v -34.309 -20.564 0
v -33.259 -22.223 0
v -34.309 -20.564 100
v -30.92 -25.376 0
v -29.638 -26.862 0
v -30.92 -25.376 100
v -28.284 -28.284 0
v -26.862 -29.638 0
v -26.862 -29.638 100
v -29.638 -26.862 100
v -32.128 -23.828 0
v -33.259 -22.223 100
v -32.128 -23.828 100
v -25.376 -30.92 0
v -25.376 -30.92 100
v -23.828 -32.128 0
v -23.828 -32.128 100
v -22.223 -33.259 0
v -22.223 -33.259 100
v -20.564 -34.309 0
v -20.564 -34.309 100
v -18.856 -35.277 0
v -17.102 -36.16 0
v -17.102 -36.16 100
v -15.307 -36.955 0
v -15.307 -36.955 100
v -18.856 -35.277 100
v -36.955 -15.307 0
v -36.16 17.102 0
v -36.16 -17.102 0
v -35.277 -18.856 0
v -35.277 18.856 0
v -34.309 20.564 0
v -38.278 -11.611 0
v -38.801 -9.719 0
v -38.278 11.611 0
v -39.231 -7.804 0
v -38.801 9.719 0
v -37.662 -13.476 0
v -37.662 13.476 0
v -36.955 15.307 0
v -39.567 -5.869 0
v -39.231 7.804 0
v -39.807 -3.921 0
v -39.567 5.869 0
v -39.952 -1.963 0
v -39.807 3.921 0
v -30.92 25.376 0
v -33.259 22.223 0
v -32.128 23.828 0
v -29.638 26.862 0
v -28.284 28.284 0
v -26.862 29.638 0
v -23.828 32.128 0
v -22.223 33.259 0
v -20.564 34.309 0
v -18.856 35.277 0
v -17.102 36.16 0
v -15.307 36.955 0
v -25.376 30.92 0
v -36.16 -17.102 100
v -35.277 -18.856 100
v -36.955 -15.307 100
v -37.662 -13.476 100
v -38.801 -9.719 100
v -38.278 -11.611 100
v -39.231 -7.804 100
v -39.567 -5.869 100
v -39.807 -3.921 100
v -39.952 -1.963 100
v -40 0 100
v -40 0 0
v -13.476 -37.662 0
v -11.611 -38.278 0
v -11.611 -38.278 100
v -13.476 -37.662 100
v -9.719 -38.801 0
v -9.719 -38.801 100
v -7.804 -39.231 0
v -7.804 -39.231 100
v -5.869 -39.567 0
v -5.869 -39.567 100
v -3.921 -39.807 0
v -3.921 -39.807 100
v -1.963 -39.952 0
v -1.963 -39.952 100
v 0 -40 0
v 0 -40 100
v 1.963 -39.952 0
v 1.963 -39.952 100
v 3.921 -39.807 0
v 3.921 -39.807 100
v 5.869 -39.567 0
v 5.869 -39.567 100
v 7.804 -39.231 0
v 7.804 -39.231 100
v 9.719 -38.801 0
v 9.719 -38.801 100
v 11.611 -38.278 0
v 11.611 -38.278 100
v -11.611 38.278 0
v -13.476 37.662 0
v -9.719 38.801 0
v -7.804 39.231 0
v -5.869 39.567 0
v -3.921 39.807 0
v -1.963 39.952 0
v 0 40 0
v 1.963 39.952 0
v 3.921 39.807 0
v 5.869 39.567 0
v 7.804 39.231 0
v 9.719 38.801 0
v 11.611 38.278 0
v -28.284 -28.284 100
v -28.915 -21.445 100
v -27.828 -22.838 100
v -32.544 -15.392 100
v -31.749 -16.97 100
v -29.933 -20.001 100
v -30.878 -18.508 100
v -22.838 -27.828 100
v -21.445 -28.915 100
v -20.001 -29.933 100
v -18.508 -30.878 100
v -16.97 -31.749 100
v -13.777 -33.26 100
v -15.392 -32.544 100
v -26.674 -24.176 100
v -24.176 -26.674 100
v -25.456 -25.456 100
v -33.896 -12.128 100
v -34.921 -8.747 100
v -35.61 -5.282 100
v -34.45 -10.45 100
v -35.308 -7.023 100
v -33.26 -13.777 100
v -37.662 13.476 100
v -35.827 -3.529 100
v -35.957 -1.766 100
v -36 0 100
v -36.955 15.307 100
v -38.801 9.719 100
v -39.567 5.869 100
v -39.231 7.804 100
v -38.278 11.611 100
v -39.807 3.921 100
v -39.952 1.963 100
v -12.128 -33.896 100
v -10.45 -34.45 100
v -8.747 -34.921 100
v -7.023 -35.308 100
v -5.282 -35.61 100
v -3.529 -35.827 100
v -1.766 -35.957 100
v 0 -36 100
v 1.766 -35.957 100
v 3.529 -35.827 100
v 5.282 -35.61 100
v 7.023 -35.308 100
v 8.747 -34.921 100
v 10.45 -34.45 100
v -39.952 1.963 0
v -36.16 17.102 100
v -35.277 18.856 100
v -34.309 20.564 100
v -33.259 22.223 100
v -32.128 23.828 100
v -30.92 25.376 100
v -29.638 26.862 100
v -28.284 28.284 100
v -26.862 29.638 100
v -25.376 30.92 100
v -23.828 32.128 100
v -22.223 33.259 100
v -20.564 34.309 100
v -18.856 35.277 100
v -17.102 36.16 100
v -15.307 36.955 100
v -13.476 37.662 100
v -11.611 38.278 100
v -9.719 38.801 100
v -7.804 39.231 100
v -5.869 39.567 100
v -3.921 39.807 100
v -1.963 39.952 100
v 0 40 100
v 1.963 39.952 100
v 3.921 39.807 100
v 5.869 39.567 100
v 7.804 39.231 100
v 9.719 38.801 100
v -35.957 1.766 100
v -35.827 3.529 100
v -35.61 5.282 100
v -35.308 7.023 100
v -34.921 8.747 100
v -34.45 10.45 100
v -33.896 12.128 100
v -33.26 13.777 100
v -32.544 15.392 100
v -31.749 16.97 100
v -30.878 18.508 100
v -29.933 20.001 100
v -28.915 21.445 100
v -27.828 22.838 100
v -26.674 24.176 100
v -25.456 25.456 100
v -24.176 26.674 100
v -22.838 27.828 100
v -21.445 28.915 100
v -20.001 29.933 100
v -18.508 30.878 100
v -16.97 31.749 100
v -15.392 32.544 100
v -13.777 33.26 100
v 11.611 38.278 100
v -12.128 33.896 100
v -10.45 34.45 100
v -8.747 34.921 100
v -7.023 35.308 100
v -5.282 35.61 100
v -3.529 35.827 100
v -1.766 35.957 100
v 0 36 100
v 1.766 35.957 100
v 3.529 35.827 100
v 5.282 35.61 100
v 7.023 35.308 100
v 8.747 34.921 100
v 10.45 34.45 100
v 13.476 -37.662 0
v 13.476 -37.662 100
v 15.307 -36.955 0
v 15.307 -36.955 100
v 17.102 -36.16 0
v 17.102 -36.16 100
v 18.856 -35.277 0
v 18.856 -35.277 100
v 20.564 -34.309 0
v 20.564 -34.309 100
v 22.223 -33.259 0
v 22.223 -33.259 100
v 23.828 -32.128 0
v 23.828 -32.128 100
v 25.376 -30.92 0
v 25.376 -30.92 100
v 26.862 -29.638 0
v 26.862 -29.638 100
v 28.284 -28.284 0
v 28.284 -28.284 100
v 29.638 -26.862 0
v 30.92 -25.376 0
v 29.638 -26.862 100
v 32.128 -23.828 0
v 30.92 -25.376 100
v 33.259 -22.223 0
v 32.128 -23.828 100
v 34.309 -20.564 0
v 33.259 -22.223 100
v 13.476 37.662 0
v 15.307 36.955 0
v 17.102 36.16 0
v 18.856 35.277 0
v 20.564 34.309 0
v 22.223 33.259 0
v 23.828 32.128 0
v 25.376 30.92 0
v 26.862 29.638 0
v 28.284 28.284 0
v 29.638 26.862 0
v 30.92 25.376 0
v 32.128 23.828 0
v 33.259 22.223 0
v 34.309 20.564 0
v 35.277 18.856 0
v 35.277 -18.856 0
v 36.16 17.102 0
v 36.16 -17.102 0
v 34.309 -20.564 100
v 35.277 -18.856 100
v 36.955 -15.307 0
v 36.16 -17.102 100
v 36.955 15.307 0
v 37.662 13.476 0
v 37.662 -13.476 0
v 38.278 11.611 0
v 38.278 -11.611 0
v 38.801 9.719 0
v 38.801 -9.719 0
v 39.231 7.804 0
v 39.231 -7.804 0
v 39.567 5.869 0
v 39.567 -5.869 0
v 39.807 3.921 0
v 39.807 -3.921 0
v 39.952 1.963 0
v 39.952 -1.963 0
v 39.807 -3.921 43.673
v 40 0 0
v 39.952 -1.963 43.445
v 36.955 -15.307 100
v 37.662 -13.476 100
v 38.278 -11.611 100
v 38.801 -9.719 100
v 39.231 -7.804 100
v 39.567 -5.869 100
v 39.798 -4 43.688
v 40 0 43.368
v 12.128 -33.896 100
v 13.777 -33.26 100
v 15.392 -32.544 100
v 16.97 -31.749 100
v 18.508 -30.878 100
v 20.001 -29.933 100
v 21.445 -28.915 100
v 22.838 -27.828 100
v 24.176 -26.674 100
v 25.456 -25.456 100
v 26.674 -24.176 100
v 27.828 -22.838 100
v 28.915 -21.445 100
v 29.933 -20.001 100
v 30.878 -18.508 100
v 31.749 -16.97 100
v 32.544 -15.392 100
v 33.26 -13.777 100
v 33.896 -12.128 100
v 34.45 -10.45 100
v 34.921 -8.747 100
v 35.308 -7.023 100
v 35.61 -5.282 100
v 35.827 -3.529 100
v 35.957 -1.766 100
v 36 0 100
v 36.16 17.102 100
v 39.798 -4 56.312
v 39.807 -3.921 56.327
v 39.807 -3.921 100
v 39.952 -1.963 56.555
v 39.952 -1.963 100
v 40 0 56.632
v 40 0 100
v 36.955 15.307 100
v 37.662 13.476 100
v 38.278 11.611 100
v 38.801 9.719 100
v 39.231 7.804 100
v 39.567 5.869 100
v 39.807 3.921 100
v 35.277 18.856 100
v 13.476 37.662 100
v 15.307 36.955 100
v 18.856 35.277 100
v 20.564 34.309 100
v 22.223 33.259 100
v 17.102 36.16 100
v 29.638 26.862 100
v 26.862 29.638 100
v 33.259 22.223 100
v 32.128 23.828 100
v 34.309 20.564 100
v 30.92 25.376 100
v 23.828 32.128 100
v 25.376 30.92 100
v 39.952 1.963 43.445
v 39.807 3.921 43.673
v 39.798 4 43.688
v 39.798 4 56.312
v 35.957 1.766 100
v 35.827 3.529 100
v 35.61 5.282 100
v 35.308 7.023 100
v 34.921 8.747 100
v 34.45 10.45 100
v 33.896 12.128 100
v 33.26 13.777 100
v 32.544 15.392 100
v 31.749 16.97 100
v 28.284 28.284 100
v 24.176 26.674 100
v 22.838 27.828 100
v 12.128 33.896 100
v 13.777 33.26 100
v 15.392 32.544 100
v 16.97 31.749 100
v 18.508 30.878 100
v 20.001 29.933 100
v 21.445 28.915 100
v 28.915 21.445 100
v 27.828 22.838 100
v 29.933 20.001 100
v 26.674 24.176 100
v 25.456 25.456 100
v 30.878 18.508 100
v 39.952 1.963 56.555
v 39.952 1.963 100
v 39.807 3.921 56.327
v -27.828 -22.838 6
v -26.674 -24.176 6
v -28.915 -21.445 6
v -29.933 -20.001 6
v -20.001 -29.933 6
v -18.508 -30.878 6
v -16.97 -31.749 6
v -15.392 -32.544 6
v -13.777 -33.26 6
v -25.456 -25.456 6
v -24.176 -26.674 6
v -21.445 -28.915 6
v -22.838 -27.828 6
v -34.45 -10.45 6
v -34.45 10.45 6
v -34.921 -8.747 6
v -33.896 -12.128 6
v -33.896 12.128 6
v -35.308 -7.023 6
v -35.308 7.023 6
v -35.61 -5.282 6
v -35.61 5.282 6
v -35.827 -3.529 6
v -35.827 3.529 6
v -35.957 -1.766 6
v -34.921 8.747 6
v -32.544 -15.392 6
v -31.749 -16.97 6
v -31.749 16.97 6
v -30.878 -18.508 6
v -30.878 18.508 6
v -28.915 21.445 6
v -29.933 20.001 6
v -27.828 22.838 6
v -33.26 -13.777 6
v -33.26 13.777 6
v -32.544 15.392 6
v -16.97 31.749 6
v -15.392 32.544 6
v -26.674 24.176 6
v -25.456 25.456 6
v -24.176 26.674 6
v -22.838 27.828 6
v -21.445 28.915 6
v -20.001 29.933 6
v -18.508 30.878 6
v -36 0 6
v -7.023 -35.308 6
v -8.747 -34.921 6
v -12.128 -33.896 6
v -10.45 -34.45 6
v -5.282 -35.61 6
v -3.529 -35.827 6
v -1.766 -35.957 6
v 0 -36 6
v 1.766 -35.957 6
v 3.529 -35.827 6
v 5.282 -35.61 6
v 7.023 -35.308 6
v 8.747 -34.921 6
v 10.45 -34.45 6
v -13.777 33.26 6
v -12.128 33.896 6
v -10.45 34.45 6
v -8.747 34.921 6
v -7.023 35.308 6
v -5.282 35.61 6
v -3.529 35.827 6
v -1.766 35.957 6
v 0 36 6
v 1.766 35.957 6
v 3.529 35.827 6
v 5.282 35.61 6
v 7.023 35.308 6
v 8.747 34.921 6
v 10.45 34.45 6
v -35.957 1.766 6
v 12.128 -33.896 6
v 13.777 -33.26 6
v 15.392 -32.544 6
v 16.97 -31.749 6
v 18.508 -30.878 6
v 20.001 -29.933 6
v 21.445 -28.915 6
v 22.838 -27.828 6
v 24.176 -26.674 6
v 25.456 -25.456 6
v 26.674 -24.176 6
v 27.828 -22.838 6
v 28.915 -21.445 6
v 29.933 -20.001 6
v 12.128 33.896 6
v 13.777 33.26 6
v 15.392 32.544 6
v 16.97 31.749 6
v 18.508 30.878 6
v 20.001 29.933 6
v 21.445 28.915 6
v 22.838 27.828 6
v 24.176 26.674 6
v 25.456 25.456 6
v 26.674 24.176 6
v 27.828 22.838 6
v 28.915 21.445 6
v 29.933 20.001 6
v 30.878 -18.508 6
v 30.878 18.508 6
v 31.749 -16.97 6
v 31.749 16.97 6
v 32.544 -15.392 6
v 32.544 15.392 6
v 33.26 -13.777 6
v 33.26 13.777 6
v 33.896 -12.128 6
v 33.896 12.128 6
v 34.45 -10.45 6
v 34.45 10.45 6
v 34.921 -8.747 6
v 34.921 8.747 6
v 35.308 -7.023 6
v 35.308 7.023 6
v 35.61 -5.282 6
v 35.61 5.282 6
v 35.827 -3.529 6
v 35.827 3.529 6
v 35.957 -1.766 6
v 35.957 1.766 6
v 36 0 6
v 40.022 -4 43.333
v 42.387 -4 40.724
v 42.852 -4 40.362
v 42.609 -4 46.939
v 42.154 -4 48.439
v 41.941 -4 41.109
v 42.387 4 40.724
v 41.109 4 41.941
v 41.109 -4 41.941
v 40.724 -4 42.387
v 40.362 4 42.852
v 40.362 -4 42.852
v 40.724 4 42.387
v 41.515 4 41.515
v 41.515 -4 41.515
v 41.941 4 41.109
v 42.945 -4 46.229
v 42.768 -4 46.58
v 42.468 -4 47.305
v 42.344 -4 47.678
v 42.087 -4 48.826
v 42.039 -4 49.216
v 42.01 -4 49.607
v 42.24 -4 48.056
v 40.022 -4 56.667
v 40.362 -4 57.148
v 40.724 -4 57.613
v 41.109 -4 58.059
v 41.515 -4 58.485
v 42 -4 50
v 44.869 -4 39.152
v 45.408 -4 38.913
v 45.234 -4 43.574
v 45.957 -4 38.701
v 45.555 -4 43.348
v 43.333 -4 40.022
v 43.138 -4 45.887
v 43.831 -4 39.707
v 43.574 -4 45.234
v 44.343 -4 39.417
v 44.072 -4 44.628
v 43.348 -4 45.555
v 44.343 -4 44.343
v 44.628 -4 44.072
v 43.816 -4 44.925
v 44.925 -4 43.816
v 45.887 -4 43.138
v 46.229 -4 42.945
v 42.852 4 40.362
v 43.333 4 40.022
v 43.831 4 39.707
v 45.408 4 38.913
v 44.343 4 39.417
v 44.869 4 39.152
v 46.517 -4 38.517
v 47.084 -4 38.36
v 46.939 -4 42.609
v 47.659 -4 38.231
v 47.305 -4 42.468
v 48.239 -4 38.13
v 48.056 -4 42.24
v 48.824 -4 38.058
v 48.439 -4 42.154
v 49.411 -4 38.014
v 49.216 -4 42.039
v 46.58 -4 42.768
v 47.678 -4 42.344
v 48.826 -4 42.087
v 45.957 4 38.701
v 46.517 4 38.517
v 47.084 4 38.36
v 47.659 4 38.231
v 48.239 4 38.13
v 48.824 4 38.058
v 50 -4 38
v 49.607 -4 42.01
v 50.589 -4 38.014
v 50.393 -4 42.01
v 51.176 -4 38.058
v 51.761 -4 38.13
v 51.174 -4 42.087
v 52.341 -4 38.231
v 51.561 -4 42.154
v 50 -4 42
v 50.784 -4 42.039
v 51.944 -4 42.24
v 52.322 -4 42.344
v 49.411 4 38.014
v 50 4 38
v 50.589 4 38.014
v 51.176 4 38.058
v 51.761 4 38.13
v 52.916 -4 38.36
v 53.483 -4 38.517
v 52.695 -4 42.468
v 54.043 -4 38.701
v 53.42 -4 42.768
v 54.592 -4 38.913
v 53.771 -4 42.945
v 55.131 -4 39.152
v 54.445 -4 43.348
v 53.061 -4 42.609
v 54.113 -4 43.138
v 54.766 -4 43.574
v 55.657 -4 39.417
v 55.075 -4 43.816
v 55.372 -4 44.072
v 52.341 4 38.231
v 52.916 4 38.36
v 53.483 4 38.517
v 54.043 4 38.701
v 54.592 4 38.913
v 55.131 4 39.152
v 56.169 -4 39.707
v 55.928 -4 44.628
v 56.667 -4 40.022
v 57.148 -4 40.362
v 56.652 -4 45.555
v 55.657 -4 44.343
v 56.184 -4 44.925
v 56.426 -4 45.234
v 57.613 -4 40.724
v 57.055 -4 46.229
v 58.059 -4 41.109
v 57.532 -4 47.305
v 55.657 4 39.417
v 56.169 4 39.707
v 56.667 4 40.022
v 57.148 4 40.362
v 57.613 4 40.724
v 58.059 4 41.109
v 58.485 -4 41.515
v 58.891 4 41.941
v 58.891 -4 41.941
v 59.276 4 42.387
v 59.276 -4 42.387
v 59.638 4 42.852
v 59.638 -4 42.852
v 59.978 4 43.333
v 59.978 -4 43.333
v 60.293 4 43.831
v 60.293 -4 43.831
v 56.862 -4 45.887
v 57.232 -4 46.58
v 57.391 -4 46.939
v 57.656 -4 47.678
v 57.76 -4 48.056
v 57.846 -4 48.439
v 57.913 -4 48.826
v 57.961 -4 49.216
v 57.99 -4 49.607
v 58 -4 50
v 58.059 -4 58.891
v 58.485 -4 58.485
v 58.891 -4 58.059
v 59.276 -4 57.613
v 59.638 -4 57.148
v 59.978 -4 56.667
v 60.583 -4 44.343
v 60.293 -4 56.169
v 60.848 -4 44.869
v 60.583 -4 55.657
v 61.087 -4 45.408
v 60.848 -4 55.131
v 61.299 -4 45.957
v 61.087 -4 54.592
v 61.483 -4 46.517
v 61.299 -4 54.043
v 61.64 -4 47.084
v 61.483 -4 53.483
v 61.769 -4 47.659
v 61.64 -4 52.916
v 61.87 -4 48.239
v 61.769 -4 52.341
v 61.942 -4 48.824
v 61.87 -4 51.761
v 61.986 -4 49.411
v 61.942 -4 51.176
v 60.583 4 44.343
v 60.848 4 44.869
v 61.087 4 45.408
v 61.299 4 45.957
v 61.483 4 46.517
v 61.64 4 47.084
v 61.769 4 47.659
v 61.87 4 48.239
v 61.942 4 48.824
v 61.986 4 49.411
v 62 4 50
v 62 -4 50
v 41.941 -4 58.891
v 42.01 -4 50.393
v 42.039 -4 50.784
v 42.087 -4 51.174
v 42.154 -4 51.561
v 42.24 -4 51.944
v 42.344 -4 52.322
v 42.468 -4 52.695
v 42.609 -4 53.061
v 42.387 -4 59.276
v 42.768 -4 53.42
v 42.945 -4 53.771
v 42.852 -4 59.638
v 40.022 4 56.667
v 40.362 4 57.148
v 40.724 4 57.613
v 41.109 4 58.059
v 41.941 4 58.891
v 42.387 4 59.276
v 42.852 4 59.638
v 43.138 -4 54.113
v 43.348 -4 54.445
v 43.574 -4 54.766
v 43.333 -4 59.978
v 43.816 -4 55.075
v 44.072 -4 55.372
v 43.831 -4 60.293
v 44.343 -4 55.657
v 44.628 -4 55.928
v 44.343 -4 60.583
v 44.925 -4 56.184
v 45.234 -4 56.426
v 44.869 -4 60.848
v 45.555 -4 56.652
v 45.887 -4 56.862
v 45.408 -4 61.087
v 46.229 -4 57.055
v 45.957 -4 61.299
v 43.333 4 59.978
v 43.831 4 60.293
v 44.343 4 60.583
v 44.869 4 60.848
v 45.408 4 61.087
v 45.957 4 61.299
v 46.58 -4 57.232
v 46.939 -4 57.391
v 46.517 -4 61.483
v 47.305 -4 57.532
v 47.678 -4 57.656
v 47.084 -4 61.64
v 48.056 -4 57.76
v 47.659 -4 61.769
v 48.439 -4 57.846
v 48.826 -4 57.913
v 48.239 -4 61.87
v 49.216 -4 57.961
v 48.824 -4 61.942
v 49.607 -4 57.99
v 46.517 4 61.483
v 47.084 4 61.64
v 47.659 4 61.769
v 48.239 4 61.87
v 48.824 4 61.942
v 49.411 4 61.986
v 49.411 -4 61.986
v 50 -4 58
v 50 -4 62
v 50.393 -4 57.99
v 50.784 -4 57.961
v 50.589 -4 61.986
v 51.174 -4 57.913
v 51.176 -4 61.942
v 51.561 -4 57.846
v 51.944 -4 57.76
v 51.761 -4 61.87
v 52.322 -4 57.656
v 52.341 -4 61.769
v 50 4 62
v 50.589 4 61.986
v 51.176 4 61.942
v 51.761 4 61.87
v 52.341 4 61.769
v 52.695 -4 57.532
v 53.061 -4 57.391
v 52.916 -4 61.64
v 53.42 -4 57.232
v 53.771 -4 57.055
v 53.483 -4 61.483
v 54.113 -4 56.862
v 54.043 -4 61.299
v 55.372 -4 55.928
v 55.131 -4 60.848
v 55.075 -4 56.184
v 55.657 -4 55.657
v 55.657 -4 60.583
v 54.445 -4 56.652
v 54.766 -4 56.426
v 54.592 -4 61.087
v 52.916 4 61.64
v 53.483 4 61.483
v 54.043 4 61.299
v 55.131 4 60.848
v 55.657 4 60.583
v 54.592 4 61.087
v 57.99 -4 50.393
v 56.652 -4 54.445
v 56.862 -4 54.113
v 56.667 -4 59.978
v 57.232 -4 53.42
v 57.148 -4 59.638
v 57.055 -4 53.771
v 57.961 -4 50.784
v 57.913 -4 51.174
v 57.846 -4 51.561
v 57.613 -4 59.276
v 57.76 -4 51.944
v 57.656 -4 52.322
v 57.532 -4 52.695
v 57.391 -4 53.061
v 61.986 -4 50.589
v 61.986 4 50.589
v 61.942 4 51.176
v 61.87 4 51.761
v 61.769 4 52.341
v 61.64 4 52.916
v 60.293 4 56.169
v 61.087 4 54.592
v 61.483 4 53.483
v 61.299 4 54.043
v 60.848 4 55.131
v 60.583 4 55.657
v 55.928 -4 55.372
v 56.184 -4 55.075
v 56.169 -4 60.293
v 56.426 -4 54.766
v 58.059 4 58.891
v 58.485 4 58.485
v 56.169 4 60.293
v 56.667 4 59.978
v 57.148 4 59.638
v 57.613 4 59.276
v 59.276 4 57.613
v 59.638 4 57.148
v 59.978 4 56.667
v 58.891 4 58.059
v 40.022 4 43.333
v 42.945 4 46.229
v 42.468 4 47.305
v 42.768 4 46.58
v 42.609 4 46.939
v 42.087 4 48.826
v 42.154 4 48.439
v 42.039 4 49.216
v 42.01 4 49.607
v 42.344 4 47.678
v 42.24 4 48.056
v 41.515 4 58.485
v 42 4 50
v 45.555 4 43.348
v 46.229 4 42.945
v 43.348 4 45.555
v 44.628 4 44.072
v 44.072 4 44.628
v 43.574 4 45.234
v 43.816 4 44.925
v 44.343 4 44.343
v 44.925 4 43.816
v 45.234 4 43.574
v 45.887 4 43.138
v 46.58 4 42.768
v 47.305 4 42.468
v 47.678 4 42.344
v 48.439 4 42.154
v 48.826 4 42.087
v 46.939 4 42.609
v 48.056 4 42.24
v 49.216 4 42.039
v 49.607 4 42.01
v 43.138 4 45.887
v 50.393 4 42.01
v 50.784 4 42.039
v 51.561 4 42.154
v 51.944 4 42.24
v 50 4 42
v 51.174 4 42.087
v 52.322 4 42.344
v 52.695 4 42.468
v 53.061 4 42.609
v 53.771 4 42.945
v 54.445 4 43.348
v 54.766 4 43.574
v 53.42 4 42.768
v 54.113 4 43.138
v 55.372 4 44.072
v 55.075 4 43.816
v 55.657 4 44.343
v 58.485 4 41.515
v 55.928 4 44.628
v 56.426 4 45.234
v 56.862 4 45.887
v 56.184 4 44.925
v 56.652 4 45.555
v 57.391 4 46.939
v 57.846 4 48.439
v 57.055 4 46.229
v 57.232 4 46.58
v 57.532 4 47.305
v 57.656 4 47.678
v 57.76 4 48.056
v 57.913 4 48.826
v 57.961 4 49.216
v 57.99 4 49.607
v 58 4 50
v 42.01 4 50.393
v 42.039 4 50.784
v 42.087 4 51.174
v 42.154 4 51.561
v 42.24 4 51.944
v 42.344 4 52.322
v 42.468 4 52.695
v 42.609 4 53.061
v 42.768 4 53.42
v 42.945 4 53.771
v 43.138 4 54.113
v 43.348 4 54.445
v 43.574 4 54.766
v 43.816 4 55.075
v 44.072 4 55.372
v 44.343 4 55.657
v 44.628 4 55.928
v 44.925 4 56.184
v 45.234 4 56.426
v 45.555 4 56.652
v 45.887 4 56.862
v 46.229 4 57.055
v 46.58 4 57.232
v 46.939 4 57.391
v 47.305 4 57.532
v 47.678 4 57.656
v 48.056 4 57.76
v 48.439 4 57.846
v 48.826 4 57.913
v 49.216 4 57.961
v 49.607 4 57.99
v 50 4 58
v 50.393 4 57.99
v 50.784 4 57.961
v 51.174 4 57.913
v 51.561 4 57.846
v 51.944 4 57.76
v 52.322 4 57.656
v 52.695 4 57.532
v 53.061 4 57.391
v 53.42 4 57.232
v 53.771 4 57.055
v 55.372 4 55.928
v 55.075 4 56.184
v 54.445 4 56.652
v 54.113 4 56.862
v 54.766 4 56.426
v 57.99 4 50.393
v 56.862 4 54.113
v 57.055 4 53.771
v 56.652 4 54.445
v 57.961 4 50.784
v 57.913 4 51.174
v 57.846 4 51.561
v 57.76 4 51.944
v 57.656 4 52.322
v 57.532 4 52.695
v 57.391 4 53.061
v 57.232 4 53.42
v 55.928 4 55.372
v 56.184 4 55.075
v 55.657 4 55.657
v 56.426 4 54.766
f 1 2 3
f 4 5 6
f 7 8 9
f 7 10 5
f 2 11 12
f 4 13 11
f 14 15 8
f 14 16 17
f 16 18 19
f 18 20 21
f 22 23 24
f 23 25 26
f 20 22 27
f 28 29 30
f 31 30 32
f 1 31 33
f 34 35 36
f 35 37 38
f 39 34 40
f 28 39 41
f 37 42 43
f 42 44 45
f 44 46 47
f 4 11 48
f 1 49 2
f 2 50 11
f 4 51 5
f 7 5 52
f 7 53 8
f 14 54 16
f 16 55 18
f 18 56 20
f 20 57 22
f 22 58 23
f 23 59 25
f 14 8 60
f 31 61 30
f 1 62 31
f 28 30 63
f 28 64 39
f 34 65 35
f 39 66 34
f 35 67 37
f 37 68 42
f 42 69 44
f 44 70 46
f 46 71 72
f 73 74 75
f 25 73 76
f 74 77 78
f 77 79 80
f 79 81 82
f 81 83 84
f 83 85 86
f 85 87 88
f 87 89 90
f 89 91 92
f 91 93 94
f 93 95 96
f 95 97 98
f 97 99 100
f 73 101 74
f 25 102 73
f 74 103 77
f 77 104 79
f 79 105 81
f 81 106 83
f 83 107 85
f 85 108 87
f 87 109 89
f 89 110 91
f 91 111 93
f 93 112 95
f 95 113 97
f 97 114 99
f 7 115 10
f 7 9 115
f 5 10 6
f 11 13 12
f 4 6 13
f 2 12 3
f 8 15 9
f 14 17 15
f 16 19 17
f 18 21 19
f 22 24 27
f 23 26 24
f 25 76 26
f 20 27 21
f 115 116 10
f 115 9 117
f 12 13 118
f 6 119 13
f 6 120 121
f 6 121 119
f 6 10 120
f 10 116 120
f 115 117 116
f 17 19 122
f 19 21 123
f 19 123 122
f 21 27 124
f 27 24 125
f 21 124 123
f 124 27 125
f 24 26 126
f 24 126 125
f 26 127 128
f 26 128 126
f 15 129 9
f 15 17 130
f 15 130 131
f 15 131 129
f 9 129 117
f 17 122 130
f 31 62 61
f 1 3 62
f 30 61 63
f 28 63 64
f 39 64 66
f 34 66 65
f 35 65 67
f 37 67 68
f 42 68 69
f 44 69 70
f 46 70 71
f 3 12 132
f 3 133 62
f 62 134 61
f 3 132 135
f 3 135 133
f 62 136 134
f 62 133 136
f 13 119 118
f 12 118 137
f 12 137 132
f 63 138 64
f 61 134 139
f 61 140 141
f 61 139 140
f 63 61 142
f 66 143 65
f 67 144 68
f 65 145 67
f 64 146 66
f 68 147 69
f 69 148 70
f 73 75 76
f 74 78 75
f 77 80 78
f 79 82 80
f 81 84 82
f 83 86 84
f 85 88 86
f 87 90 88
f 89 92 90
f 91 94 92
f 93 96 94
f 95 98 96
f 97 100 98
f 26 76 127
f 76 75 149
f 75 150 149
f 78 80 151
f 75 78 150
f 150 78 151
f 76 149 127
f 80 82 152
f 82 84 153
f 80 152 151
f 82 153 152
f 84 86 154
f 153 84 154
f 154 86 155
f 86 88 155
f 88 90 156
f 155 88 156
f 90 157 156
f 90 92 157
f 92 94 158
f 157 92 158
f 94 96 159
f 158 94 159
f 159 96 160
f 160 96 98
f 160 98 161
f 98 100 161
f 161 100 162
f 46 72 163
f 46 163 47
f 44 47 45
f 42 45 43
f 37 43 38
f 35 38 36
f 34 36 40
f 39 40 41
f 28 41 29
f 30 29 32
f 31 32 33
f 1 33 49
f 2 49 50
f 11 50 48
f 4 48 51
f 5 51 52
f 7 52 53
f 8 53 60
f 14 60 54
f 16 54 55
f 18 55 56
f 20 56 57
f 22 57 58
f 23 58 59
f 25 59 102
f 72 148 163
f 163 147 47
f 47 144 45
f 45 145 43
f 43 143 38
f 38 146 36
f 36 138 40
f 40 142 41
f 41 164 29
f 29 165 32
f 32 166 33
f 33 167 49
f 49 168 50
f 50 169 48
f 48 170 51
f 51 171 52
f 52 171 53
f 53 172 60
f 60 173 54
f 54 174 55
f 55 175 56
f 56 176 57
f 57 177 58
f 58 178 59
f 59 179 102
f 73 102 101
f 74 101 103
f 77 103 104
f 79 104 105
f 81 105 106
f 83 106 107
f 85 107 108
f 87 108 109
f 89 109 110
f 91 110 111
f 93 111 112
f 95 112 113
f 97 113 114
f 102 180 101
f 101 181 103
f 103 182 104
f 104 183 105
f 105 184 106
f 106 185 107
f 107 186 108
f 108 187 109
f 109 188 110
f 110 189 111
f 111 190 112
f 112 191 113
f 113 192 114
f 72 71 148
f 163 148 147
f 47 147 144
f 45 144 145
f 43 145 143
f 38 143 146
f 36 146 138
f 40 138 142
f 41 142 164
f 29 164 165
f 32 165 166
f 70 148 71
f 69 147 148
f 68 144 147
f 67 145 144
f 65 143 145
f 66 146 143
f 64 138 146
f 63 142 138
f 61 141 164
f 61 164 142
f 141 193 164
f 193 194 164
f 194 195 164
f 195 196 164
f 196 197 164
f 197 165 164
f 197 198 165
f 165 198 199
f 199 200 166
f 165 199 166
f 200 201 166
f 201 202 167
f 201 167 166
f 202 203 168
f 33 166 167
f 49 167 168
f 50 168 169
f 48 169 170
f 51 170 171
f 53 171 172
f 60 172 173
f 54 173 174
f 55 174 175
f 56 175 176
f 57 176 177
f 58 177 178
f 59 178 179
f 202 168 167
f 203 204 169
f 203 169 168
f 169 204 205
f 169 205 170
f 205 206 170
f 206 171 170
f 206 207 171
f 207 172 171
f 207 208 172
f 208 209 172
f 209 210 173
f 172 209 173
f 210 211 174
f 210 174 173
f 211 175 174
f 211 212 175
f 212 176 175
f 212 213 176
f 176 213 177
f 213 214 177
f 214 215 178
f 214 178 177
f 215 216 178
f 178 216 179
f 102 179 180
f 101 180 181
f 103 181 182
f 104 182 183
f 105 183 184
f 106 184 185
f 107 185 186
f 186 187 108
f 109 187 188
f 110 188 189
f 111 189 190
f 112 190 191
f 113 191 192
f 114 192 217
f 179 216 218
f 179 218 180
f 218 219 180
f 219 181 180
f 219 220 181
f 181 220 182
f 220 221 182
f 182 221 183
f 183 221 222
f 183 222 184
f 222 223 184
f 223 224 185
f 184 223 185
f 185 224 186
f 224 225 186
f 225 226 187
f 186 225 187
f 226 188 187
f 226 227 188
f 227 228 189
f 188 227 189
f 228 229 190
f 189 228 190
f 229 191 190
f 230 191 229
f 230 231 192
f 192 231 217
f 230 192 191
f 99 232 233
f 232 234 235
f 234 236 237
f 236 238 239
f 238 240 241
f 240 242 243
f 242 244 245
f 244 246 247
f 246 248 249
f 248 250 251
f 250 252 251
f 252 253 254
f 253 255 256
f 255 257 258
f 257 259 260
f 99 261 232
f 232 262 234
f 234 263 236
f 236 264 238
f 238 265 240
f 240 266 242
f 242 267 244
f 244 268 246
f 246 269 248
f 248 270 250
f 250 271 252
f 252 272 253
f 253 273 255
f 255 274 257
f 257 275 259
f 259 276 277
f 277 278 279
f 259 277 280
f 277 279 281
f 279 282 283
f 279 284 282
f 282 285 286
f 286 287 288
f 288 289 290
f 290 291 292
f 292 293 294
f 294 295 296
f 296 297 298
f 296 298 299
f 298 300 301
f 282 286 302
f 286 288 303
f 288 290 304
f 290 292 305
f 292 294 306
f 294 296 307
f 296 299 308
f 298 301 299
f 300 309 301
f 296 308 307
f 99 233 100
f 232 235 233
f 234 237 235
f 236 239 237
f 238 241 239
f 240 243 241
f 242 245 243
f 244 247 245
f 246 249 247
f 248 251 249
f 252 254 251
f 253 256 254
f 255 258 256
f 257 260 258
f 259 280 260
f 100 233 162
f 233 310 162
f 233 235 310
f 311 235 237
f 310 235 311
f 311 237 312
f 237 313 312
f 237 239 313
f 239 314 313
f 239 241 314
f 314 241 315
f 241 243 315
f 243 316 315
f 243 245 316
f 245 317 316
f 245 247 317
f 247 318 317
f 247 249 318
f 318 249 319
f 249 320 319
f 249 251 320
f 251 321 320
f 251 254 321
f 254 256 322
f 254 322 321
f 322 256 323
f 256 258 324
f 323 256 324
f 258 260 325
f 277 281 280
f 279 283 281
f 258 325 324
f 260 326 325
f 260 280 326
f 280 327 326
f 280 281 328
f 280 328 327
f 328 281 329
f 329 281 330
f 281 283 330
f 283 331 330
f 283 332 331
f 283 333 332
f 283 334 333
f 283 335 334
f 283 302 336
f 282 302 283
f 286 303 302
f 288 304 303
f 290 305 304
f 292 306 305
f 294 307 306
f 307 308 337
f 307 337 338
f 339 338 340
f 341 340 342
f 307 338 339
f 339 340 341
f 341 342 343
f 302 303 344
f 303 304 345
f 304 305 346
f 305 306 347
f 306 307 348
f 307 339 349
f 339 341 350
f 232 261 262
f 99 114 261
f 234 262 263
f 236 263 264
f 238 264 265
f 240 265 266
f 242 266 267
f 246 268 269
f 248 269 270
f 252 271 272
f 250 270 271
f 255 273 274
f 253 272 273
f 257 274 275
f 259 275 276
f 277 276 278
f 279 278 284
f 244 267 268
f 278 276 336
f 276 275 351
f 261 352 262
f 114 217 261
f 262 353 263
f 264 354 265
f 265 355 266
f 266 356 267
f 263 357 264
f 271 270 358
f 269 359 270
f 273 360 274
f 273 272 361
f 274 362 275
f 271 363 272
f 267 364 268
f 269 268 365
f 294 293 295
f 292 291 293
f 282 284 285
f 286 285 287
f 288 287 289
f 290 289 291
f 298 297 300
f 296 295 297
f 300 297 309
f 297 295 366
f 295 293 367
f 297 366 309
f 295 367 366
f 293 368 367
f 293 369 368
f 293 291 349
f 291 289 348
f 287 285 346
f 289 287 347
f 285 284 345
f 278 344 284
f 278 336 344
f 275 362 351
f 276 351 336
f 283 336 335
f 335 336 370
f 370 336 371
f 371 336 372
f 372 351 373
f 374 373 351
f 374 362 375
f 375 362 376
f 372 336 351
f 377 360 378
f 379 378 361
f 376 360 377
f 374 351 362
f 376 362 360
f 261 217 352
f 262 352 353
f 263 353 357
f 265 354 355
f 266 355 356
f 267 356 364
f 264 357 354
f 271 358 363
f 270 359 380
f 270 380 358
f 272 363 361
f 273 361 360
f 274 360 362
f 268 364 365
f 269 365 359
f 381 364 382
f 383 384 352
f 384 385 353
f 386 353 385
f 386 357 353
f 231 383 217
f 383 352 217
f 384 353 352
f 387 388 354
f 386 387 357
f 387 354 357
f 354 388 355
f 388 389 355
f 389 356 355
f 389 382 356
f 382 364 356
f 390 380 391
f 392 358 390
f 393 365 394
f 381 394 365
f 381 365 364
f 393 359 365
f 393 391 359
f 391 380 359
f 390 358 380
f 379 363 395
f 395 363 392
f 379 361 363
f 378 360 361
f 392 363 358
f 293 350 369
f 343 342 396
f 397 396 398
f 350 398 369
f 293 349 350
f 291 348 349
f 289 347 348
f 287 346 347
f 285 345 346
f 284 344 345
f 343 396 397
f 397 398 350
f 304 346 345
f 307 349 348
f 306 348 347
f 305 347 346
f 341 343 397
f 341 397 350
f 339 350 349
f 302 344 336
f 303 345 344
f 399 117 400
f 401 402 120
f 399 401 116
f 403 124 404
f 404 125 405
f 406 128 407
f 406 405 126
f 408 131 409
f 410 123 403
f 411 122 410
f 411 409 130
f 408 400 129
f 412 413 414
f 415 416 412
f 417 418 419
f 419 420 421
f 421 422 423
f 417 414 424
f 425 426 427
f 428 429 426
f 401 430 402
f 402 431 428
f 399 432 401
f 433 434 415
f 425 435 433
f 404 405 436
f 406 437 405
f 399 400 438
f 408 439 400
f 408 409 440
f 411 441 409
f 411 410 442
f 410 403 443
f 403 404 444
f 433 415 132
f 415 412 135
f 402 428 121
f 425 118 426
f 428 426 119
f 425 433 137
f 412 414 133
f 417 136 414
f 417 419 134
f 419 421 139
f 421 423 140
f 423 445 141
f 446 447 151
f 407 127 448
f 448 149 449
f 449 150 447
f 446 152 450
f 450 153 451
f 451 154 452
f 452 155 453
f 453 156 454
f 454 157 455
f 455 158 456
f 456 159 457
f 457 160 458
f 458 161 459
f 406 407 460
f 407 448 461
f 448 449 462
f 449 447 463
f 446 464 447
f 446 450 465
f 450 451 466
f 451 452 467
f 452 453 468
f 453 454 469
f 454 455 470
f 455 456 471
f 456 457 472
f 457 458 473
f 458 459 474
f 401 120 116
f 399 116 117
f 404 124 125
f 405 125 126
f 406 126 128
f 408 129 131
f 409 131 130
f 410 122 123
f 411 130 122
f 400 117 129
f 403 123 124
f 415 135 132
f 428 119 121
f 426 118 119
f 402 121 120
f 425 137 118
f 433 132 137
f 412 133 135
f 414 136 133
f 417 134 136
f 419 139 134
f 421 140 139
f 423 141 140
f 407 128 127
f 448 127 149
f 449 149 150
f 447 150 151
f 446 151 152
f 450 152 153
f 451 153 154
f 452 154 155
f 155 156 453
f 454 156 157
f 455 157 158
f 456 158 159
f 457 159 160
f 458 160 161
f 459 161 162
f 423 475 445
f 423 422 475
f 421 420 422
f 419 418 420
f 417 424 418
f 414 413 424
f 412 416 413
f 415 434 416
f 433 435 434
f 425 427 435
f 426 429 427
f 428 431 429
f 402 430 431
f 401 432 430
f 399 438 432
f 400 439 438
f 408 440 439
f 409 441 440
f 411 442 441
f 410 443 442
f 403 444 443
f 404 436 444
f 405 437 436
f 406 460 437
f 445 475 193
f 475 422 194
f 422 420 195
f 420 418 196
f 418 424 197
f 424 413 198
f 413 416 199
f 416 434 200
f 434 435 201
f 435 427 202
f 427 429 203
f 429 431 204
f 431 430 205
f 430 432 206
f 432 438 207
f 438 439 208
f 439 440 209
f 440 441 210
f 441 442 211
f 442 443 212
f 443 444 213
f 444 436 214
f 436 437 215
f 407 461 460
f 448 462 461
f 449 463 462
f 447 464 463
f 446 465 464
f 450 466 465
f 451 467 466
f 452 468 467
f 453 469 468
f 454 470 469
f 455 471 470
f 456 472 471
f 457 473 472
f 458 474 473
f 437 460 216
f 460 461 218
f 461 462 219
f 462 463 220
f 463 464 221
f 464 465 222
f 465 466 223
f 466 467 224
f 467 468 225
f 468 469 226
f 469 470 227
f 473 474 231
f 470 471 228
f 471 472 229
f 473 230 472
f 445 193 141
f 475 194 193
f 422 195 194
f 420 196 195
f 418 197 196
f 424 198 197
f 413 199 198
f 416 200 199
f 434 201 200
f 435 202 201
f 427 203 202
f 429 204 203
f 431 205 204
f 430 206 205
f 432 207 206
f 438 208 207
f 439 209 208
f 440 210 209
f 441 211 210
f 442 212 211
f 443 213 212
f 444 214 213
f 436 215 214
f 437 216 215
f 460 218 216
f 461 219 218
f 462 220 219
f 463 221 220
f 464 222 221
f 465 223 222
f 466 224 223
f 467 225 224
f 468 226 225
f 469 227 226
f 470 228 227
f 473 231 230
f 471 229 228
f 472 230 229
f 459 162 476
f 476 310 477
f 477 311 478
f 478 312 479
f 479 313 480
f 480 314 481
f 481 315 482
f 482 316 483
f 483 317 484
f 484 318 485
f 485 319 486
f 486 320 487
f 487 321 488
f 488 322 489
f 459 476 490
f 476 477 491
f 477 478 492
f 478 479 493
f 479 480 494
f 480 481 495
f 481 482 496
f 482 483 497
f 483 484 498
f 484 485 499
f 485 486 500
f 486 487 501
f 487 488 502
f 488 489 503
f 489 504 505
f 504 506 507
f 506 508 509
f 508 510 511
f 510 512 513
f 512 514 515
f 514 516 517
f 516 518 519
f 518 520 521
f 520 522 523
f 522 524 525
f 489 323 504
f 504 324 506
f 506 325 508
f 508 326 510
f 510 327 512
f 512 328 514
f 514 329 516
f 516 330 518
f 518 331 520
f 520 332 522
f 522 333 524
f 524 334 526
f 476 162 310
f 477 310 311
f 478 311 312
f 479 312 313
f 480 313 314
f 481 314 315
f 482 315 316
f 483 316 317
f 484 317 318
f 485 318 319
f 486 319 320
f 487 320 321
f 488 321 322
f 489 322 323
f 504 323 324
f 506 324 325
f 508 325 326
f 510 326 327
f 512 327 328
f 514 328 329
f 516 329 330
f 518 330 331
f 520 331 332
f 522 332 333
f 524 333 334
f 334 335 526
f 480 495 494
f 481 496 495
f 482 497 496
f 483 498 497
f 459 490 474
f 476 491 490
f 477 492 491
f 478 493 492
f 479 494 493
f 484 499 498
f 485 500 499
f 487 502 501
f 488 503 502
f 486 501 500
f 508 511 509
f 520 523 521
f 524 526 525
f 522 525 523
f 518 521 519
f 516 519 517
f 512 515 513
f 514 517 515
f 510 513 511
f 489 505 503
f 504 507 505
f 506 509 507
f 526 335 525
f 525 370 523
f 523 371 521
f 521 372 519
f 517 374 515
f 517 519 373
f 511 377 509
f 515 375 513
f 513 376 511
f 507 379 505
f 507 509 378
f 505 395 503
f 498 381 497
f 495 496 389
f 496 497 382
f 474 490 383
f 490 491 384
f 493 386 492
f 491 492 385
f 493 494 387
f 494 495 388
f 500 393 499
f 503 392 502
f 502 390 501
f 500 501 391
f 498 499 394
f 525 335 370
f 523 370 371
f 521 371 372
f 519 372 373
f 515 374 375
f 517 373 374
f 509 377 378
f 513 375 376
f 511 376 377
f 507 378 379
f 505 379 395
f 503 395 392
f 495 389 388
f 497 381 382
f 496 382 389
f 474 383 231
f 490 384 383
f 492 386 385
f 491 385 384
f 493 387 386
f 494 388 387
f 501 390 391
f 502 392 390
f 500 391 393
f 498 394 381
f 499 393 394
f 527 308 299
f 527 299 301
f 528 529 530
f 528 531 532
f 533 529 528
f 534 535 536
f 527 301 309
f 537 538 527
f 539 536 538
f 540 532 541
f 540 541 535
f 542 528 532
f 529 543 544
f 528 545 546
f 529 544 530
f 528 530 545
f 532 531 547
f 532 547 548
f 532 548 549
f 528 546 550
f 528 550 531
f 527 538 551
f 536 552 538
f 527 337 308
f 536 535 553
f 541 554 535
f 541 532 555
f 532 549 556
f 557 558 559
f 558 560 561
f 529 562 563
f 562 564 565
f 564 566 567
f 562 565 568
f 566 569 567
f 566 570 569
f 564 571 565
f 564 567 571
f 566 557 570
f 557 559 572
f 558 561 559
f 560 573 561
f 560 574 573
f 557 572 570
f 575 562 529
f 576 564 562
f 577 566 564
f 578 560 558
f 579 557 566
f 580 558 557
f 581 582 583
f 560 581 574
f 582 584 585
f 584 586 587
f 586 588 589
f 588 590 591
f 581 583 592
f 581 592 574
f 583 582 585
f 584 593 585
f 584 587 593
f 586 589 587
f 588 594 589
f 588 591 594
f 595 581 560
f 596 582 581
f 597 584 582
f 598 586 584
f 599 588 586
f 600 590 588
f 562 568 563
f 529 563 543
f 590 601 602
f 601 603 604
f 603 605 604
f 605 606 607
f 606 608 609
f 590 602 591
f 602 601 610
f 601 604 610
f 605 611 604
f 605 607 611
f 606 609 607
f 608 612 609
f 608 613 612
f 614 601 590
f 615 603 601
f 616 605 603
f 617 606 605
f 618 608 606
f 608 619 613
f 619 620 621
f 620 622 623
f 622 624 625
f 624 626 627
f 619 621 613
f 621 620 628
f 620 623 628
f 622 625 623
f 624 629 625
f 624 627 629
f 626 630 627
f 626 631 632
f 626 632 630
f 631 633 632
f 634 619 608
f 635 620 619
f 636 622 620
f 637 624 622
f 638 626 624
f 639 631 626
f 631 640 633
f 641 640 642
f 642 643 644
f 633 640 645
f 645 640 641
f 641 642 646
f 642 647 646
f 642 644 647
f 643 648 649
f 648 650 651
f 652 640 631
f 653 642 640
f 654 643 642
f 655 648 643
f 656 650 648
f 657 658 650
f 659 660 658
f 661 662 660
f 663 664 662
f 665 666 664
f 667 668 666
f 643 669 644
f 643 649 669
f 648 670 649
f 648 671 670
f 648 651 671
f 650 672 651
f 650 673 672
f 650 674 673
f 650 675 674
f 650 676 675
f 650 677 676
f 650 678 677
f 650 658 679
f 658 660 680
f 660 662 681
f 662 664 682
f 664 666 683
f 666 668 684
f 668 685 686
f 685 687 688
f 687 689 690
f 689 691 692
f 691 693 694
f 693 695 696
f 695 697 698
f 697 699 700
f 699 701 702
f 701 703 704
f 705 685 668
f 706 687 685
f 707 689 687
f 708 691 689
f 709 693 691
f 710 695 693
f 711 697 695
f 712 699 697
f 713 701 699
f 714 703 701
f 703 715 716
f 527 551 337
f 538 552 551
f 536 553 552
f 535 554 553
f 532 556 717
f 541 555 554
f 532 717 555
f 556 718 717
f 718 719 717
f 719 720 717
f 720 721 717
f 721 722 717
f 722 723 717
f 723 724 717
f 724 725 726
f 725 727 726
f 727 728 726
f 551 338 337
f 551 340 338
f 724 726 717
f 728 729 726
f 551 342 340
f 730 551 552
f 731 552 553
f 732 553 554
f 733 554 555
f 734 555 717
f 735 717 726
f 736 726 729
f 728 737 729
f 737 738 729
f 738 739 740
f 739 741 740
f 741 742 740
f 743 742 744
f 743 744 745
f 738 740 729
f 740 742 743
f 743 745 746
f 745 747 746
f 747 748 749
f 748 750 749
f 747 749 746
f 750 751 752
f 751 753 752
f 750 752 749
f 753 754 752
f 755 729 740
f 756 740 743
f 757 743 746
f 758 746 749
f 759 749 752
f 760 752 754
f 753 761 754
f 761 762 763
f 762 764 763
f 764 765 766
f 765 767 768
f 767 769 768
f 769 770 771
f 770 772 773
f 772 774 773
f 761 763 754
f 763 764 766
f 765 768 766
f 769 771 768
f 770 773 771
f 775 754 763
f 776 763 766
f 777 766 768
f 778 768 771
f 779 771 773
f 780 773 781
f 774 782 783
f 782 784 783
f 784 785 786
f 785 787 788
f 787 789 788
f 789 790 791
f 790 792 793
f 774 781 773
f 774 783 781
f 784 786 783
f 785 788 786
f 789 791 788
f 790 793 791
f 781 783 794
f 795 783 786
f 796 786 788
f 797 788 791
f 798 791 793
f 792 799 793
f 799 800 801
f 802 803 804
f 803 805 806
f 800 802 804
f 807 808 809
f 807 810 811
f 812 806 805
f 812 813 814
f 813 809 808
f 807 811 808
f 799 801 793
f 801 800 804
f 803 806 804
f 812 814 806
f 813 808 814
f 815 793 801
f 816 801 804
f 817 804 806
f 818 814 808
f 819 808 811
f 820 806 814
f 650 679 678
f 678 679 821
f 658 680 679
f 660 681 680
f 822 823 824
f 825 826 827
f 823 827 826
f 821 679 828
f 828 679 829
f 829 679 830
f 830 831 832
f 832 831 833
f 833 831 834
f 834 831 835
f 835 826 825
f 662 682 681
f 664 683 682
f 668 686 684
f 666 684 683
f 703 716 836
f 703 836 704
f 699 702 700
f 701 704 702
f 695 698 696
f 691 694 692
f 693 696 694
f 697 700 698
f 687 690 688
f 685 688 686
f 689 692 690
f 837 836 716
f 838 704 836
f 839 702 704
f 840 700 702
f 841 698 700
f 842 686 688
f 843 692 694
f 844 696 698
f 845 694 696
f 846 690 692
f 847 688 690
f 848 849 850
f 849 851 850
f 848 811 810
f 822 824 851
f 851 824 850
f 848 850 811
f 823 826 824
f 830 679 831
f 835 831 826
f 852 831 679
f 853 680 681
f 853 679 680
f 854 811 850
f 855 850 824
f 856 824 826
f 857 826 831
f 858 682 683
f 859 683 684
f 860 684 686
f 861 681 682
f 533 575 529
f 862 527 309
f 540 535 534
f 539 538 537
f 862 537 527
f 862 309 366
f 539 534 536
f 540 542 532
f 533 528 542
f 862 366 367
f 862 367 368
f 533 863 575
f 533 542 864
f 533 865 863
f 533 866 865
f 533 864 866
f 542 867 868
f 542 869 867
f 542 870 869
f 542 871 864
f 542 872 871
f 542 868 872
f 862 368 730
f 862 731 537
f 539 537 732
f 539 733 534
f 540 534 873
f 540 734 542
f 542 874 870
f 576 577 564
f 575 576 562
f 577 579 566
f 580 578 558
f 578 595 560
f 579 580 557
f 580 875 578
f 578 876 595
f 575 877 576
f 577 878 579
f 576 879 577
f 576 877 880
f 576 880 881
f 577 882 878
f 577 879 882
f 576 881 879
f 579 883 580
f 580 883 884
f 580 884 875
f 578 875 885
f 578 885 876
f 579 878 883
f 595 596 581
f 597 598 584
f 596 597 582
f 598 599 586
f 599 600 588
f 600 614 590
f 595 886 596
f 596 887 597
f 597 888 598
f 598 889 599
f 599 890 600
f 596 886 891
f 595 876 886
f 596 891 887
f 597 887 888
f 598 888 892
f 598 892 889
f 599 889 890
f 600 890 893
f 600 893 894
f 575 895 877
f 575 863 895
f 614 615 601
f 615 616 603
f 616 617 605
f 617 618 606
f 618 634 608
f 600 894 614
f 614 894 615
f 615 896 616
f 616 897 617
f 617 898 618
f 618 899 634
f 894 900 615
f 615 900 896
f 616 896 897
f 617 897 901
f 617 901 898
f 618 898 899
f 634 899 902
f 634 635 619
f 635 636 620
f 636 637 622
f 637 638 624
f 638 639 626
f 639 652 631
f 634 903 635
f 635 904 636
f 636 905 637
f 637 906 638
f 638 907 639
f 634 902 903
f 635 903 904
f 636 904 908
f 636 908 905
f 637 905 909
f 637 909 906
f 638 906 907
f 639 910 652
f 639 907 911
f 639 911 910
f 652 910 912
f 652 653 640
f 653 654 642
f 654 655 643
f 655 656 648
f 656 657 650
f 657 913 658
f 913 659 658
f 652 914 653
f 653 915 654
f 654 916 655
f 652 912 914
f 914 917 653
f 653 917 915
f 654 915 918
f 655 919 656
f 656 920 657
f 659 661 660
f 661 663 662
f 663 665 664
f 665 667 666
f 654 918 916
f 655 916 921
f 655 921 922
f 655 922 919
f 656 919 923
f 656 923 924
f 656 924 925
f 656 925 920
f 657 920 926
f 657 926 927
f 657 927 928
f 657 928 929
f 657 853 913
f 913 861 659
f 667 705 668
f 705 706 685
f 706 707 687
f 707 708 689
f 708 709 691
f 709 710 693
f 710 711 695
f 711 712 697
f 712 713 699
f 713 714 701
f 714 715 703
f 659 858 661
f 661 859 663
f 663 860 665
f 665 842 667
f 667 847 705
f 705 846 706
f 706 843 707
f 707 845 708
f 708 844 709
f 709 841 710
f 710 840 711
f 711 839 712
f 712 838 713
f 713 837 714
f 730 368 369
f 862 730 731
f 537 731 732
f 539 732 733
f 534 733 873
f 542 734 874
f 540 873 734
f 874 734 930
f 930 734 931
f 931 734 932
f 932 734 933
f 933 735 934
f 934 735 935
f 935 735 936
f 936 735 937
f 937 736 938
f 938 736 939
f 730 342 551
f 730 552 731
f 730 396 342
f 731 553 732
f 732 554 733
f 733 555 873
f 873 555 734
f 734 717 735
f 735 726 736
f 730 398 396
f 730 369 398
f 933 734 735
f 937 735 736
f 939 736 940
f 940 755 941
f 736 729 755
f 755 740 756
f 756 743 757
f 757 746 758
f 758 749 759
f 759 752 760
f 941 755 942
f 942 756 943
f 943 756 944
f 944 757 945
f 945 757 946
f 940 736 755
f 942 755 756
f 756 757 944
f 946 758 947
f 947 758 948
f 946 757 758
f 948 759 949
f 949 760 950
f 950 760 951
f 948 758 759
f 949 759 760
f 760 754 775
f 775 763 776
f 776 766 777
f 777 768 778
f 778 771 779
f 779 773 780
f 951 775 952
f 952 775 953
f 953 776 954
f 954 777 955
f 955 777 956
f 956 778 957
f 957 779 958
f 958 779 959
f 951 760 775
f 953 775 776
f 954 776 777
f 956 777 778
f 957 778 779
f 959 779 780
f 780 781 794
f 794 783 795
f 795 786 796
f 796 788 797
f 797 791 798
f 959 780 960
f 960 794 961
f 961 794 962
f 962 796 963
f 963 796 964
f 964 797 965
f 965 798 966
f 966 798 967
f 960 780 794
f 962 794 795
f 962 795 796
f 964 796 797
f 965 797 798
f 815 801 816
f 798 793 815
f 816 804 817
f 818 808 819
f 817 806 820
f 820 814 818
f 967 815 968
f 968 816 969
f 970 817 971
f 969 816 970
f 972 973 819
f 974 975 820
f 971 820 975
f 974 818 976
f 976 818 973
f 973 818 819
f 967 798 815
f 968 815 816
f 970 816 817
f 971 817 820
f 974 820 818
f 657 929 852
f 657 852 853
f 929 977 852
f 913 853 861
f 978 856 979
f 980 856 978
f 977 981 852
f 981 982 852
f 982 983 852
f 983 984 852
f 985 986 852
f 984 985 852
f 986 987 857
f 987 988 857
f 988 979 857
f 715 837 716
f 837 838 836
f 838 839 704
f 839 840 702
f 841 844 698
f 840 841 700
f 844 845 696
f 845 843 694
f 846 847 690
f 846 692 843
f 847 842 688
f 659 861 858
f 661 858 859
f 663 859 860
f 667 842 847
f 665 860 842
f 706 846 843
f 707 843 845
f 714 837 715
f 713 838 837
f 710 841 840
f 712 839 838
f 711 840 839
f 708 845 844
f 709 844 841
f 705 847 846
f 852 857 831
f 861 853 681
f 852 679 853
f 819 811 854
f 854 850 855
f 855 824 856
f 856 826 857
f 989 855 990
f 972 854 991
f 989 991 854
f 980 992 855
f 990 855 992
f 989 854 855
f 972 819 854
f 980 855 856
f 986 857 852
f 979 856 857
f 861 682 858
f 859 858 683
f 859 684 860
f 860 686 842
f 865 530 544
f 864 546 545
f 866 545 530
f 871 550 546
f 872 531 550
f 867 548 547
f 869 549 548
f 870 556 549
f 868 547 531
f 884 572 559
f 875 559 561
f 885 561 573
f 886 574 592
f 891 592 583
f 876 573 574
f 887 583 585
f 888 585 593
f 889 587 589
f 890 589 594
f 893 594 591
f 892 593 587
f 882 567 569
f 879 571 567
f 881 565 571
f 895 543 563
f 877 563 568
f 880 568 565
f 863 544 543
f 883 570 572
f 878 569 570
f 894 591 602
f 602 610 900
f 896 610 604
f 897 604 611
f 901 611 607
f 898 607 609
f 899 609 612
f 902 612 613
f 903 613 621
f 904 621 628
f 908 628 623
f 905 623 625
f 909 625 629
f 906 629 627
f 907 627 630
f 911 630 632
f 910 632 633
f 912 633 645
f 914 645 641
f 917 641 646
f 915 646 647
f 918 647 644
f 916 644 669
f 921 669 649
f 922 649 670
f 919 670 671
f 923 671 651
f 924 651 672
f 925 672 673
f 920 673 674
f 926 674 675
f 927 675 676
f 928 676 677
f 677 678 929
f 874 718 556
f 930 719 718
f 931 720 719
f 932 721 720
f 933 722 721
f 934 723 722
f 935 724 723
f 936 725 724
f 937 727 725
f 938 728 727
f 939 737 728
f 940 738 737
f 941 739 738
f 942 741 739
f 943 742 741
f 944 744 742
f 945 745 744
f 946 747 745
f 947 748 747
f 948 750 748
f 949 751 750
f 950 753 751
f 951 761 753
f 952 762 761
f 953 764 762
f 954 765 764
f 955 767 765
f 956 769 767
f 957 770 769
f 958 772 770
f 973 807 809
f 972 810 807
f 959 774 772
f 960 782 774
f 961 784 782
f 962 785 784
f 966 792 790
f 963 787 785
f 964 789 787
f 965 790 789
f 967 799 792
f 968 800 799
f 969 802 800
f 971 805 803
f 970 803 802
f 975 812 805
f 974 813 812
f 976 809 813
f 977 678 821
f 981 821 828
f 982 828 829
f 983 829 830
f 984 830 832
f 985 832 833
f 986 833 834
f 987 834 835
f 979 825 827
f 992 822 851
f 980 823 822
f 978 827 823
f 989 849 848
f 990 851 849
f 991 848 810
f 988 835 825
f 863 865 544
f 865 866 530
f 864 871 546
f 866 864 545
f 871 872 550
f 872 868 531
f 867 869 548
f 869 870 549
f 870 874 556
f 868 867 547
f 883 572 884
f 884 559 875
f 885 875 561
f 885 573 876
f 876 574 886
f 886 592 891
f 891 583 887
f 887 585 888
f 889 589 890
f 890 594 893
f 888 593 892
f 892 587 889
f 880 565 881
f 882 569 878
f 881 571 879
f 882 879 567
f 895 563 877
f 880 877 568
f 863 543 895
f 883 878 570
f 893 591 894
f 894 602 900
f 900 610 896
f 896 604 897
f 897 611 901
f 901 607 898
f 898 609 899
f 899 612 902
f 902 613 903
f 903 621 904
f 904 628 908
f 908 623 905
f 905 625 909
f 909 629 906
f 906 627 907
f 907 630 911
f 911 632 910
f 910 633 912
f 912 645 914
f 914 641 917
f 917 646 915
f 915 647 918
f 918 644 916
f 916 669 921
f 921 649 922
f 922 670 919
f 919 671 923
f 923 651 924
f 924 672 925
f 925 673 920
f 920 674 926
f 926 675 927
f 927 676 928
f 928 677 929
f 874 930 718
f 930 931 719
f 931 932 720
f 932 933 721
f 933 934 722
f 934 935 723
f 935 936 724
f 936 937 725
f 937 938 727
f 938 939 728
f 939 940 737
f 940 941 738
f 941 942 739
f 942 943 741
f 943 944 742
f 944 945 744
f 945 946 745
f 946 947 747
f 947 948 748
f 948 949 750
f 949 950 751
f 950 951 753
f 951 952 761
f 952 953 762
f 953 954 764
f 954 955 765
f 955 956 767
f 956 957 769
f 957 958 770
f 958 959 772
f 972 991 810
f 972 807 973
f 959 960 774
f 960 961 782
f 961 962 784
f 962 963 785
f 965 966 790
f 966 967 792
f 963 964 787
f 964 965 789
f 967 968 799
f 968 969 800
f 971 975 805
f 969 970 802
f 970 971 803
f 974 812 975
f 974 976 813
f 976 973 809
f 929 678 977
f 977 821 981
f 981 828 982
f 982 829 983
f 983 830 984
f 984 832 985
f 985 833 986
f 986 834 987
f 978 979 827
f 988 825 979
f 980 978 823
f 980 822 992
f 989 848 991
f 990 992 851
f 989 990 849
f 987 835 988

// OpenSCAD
$fn = 128;

// カップ寸法
outer_diameter = 80;
outer_radius   = outer_diameter / 2;
height         = 100;
wall_thickness = 4;
bottom_thickness = 6;

// 取手寸法
handle_outer_radius = 12;
handle_inner_radius = 8;
handle_depth        = 8;
handle_center_x     = outer_radius + handle_outer_radius - 2;
handle_center_z     = height / 2;

union() {
    // カップ本体
    difference() {
        cylinder(r = outer_radius, h = height);

        // 内側のくり抜き
        translate([0, 0, bottom_thickness])
            cylinder(
                r = outer_radius - wall_thickness,
                h = height - bottom_thickness + 1
            );
    }

    // リング状の取手
    translate([handle_center_x, 0, handle_center_z])
        rotate([90, 0, 0])
            difference() {
                cylinder(
                    r = handle_outer_radius,
                    h = handle_depth,
                    center = true
                );

                cylinder(
                    r = handle_inner_radius,
                    h = handle_depth + 2,
                    center = true
                );
            }
}
